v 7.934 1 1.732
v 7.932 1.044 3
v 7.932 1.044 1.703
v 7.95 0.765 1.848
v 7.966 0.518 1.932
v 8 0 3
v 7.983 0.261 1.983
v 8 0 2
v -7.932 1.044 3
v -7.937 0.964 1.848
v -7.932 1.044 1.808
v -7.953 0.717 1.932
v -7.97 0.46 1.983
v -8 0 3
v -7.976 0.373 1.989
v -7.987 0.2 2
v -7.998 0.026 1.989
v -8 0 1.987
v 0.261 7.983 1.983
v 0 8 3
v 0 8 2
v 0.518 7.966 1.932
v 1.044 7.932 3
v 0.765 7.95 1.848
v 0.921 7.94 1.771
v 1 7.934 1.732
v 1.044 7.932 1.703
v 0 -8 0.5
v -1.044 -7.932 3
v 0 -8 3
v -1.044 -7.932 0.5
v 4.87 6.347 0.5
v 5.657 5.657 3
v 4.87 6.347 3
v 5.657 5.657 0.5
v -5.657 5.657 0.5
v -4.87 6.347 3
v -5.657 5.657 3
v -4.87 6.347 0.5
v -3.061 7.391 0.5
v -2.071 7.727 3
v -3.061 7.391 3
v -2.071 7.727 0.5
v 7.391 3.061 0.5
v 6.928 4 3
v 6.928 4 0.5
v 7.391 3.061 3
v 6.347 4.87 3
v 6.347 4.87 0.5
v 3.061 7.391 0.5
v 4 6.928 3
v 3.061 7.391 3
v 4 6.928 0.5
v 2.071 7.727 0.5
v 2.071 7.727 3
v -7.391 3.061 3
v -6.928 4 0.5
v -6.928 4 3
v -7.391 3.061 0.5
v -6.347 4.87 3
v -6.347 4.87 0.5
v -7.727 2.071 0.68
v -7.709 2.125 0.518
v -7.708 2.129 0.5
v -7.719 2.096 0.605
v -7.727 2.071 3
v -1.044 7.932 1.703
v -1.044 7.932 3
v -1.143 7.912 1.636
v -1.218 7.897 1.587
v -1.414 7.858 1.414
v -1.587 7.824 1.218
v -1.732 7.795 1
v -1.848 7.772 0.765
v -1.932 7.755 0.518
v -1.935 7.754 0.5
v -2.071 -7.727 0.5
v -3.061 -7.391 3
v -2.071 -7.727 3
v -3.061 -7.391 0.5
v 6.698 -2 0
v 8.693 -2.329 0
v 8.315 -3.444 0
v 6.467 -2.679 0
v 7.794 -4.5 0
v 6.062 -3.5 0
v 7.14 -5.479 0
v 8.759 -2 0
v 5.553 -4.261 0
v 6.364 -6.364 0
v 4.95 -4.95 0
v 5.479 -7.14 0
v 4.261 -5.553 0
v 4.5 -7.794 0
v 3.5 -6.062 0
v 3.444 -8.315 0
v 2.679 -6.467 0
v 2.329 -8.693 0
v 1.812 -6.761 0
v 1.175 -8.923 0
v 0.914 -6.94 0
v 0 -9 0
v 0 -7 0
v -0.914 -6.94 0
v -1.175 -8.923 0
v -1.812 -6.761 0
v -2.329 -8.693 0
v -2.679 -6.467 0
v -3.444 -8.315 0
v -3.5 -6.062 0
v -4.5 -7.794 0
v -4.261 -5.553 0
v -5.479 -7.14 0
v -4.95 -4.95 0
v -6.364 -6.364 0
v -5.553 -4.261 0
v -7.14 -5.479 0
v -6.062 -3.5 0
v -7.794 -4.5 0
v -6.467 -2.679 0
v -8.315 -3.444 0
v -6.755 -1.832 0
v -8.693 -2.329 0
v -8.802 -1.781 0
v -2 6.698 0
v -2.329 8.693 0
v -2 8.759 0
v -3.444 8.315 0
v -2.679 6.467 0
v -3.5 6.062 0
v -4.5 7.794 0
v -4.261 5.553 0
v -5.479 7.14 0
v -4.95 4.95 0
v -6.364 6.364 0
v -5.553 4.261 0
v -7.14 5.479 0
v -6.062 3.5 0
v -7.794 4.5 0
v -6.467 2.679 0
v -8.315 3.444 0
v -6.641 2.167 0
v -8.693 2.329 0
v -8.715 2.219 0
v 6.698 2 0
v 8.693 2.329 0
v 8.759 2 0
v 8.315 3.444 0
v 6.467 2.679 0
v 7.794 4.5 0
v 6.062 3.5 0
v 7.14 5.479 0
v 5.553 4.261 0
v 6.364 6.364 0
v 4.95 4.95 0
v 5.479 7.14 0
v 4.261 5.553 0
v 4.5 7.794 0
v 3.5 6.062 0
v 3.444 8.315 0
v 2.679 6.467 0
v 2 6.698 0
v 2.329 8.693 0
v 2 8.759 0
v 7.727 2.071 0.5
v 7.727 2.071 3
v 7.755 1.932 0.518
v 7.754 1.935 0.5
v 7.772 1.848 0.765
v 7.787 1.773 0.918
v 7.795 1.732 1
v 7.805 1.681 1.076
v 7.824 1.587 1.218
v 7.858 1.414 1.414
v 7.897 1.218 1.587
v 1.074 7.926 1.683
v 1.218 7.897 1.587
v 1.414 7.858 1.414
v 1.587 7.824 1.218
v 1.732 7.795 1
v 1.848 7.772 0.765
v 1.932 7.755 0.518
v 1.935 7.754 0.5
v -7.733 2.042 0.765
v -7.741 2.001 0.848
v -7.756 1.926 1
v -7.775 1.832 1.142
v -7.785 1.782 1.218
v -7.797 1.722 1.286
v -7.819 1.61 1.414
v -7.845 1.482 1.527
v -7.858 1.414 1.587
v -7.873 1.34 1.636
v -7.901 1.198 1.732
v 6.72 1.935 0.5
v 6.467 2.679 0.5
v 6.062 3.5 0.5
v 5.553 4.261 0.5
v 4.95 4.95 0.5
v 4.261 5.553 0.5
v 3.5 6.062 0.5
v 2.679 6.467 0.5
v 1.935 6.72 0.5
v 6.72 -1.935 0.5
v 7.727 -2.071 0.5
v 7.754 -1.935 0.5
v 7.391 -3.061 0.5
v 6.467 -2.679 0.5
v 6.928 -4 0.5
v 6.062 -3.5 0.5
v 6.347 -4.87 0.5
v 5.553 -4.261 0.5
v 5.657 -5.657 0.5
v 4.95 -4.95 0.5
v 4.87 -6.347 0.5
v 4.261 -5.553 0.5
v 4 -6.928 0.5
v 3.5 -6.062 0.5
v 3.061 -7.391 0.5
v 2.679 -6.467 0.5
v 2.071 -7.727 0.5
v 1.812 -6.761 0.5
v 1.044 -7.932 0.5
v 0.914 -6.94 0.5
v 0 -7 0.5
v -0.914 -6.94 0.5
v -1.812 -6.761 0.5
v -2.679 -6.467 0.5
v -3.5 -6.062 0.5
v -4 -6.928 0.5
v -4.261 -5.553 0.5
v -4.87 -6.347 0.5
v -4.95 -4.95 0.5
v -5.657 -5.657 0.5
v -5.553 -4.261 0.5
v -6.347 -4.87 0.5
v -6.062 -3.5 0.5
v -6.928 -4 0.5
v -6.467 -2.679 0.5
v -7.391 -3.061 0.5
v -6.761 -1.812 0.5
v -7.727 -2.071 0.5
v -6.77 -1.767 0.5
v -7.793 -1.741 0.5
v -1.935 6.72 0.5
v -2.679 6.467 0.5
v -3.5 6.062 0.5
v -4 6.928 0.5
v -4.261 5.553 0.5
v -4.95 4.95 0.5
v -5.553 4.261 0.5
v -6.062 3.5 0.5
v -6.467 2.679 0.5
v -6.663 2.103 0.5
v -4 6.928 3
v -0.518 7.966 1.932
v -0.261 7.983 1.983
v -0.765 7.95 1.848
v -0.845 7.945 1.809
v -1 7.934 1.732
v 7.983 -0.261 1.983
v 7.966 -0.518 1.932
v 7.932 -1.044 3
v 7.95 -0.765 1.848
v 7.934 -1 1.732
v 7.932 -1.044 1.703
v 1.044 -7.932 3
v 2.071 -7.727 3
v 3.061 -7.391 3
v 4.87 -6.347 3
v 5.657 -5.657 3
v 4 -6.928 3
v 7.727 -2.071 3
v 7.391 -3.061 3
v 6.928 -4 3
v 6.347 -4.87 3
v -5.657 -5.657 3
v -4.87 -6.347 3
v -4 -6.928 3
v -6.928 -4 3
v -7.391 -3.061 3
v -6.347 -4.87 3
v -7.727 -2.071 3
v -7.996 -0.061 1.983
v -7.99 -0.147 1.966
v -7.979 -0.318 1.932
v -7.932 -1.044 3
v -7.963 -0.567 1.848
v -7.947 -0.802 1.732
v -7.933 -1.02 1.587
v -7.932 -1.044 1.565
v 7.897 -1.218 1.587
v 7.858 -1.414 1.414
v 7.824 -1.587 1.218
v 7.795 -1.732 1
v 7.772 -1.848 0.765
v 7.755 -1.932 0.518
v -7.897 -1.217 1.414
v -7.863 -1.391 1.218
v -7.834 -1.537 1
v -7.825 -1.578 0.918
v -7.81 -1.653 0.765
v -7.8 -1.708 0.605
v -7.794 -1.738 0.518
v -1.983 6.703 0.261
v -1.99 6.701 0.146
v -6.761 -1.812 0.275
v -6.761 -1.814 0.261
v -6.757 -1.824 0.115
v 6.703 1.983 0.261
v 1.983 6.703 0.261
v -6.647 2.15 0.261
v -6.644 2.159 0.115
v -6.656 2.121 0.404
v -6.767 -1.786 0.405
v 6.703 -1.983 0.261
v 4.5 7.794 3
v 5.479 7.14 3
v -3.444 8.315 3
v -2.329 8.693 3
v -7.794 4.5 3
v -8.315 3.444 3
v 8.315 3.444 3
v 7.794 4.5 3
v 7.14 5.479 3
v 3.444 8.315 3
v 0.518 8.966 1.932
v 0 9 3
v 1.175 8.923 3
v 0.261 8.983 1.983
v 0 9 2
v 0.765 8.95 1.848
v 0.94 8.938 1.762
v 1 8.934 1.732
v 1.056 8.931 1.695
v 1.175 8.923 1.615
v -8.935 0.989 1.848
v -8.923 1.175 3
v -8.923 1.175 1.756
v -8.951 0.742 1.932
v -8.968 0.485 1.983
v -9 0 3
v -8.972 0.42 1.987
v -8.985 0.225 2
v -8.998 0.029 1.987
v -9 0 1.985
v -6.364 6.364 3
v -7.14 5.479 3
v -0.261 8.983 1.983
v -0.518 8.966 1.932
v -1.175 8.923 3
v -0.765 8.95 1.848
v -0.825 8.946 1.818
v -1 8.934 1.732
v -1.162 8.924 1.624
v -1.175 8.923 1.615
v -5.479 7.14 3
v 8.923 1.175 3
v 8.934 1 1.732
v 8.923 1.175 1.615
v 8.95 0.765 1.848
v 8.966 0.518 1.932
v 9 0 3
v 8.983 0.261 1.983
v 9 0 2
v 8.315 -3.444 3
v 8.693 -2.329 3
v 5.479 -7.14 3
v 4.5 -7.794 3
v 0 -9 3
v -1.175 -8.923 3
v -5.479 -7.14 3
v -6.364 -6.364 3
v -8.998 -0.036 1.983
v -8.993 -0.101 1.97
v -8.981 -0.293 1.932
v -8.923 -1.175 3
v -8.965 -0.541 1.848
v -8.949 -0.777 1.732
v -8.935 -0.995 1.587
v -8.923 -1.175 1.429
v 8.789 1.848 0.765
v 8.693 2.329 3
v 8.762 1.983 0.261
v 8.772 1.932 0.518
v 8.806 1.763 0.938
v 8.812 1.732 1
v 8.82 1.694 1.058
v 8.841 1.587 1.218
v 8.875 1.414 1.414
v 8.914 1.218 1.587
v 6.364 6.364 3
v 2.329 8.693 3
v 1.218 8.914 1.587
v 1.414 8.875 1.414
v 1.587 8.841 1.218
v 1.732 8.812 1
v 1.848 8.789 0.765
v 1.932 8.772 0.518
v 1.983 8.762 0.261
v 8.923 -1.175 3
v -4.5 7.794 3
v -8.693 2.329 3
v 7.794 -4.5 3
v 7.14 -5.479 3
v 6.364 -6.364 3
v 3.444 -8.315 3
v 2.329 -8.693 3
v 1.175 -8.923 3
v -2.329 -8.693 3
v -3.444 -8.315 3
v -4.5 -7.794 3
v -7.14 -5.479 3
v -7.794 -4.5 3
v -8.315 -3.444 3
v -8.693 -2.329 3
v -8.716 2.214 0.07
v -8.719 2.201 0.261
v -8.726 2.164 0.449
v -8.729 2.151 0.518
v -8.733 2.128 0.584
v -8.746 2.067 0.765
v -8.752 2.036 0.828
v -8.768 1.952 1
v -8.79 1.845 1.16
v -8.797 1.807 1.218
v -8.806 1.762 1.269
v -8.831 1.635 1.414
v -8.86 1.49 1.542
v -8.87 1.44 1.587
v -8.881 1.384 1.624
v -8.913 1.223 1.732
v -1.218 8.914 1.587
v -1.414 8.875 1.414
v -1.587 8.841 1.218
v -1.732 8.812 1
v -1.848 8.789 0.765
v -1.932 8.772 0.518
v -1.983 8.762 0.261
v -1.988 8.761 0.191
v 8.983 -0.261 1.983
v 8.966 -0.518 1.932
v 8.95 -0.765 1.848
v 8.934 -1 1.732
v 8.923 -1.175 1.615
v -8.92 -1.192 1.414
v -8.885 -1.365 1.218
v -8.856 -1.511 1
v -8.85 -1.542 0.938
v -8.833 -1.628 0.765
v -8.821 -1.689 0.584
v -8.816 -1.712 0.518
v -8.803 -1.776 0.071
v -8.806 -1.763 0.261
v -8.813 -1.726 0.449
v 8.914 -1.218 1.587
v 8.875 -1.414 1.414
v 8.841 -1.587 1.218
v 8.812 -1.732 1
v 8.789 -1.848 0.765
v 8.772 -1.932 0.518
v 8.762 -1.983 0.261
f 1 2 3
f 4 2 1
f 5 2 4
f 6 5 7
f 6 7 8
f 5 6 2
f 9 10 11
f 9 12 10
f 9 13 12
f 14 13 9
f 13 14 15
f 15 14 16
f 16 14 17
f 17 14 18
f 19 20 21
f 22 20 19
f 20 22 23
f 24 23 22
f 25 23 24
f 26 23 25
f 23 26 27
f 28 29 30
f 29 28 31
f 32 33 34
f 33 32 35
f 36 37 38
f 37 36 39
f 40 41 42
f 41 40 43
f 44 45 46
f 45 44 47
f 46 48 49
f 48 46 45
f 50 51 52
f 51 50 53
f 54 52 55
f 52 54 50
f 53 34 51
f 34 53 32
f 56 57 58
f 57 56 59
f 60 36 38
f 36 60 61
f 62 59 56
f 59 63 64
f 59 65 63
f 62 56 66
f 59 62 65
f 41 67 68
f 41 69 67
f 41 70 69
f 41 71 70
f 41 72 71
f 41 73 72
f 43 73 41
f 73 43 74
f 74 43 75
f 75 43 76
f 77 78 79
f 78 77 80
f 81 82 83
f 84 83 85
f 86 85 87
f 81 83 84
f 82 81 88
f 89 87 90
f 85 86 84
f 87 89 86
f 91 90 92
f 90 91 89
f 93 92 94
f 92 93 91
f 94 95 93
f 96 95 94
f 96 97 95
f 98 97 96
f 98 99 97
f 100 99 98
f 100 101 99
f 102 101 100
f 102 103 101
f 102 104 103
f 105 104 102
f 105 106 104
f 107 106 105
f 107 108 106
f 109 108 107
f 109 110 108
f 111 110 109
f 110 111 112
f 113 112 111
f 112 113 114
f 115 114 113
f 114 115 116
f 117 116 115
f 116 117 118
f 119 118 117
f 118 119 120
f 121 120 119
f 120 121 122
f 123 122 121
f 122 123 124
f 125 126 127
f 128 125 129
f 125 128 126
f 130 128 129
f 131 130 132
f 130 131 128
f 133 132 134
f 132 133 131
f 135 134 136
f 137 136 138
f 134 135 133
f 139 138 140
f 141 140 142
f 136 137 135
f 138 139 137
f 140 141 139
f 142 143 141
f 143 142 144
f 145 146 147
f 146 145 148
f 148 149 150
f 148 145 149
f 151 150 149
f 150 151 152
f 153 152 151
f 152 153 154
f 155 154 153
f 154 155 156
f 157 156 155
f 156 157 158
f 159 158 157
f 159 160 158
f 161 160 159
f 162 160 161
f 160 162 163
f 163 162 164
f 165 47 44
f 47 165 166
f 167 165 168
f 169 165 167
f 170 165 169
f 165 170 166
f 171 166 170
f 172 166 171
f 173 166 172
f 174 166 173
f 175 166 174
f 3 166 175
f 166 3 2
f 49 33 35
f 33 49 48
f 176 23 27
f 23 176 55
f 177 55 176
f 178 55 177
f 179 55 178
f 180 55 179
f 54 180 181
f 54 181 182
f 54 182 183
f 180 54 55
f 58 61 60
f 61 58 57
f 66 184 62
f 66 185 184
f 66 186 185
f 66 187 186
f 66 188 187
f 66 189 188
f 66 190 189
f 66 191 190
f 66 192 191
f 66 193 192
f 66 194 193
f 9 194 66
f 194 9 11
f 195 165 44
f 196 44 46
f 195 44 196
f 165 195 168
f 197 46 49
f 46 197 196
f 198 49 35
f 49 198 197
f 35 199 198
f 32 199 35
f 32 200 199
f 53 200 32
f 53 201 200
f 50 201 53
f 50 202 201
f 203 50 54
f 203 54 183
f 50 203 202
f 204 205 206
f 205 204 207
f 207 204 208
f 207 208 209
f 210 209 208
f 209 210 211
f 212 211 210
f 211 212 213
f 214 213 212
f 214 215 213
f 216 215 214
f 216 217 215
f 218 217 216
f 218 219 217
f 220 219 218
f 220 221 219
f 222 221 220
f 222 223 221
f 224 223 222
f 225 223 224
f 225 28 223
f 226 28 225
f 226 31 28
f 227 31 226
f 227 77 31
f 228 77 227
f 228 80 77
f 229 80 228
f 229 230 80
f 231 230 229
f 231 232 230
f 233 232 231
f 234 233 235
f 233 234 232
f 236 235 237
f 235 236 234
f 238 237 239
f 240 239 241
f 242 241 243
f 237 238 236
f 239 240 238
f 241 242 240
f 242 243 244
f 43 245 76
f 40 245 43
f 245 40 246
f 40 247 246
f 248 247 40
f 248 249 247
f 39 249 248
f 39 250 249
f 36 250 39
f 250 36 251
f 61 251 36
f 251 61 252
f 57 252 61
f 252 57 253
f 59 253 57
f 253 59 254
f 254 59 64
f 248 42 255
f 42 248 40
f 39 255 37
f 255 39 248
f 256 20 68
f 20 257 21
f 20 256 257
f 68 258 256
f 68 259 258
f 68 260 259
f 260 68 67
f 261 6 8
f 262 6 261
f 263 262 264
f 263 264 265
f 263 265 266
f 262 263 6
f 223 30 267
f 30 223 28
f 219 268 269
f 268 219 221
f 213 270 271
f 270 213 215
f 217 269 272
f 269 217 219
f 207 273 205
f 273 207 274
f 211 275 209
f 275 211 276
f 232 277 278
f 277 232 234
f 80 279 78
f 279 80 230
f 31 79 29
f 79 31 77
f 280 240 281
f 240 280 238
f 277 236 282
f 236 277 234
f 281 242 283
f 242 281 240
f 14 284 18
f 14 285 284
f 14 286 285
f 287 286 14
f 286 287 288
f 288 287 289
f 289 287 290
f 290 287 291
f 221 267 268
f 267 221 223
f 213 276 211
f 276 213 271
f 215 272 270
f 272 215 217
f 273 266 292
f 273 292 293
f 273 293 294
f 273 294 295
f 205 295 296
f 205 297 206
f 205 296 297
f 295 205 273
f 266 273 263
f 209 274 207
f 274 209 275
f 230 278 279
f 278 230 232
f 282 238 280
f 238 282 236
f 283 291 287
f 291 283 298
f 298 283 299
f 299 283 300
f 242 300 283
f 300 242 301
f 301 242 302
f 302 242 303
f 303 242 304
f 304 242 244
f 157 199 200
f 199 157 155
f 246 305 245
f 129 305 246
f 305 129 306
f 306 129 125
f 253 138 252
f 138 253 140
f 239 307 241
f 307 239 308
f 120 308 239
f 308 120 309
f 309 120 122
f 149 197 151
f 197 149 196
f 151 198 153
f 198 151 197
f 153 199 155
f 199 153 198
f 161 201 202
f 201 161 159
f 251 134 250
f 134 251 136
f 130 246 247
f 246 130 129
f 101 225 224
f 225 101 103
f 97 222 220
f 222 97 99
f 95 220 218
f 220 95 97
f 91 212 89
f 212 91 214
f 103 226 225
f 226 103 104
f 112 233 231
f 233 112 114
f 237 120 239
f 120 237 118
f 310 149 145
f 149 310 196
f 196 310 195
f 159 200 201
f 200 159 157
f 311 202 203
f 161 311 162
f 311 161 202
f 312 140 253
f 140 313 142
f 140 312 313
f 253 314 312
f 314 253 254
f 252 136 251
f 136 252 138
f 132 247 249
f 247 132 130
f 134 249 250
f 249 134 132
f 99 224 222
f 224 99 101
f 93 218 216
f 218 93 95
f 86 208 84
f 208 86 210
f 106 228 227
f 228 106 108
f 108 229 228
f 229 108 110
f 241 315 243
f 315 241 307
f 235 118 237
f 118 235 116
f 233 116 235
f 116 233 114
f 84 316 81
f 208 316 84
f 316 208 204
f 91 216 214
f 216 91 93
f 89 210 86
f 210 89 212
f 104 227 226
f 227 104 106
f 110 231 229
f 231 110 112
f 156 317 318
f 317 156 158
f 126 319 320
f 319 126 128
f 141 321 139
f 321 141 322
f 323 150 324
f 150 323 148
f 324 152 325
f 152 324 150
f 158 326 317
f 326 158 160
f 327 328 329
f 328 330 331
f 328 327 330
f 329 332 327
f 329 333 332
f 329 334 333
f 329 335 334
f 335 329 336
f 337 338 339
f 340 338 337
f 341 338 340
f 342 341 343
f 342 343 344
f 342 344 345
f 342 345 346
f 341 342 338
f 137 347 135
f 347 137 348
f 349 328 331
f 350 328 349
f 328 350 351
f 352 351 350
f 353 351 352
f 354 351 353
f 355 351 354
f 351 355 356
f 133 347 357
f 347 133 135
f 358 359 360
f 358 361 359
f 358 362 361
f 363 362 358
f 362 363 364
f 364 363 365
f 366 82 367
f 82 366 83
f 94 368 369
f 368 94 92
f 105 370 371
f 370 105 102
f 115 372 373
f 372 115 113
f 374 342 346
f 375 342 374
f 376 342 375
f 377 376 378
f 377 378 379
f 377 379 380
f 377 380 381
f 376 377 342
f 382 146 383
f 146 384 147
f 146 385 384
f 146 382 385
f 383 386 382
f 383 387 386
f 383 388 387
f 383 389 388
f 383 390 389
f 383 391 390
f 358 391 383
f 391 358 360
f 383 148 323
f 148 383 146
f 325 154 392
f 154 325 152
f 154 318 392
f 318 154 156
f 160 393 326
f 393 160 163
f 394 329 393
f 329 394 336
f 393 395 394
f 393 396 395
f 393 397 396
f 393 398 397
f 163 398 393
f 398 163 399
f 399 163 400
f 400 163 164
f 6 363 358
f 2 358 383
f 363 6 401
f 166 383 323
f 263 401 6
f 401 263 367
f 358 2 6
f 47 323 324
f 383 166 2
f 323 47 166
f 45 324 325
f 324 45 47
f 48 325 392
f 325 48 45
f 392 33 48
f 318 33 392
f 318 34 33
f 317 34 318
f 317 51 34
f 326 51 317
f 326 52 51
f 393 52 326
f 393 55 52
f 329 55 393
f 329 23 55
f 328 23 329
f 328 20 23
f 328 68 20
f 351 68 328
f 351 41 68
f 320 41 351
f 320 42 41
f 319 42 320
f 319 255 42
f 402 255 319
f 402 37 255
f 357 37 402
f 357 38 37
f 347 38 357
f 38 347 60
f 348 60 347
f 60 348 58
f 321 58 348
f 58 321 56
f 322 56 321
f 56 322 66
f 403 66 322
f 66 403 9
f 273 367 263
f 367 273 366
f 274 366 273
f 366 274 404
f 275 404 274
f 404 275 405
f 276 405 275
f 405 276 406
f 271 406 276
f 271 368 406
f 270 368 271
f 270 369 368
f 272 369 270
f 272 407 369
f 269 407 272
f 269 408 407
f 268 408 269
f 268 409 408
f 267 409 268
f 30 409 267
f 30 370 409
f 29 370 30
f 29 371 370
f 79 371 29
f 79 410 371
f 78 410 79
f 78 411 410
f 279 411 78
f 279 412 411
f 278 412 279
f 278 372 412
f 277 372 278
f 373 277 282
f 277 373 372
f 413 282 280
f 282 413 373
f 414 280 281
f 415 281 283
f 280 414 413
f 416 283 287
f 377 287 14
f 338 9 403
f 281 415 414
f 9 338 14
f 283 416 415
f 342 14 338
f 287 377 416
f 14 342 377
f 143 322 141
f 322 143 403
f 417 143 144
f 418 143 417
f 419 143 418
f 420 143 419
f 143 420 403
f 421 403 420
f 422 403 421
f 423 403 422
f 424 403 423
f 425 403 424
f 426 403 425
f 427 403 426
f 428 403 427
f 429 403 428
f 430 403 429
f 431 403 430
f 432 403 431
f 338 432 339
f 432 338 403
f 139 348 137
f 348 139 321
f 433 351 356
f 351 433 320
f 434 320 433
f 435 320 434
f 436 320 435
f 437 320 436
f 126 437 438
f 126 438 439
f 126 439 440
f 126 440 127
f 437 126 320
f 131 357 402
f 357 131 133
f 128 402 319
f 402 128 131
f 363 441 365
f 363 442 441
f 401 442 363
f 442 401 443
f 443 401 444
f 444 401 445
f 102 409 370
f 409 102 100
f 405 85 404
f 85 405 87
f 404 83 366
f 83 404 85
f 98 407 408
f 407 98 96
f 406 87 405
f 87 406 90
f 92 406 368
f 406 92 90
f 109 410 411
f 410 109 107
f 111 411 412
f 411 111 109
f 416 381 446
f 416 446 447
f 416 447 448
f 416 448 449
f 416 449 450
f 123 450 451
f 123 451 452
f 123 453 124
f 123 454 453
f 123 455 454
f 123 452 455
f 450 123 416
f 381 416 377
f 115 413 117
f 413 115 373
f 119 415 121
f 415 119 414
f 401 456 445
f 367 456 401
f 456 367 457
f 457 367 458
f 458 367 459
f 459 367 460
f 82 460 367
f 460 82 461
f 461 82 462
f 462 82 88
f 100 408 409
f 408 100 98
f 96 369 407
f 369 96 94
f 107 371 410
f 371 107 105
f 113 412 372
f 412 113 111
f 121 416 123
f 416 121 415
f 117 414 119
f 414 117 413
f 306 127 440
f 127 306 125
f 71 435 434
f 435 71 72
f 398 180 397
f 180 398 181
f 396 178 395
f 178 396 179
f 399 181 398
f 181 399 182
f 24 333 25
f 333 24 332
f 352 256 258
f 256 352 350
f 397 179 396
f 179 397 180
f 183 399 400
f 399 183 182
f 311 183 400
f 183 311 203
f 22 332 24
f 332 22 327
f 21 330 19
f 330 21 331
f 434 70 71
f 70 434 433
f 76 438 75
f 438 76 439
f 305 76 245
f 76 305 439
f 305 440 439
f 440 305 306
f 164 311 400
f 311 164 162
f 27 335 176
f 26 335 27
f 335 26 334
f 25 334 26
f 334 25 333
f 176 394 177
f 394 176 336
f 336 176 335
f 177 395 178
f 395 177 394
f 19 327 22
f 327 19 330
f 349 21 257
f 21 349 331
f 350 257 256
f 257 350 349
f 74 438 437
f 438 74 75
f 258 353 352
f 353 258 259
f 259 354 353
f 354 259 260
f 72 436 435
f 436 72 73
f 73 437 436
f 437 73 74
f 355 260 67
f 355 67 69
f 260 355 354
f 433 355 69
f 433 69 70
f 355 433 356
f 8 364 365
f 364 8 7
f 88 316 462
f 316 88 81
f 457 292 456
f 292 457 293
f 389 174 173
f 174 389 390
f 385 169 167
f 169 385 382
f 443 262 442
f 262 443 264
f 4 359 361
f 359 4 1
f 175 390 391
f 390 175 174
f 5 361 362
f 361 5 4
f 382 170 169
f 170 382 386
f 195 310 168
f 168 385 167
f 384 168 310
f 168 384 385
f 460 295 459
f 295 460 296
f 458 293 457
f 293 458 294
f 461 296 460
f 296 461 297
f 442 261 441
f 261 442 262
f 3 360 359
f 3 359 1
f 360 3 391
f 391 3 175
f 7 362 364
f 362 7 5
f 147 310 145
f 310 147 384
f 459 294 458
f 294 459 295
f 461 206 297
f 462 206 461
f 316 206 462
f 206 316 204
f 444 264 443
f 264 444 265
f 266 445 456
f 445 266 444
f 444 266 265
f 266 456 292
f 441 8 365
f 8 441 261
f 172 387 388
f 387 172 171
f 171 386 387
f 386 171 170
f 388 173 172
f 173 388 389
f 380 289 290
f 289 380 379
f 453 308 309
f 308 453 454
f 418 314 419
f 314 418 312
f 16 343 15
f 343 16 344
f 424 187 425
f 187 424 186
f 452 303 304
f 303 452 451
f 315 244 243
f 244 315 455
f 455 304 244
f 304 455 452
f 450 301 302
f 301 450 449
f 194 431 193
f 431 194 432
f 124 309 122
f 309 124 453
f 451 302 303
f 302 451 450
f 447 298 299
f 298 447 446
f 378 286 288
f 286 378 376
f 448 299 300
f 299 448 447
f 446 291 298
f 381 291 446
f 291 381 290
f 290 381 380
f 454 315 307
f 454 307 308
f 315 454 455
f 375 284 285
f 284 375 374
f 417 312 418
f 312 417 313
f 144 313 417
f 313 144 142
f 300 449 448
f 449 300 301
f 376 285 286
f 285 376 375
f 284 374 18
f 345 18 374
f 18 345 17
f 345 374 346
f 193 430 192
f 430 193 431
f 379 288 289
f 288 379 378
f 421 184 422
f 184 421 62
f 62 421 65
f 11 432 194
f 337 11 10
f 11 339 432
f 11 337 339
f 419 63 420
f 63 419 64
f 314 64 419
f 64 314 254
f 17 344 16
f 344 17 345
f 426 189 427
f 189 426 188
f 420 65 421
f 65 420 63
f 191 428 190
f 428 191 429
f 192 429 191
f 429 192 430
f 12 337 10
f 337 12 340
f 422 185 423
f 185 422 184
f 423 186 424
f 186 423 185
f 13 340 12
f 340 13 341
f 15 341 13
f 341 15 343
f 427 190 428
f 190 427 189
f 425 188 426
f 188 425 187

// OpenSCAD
// file: ../build_environments.scad
// build_environments.scad: modules to build level sections
//

module pool(diameter=10.0, wall_height=2.0, step_width=3.0, connections=[])
{
    difference() {
        union() {
        difference() {
            cylinder(h=0.5,r1=diameter+step_width,r2=diameter+step_width,$fn=48);
            translate([0,0,-0.1])
                cylinder(h=0.7,r1=diameter,r2=diameter,$fn=48);
        }
        difference() {
            cylinder(h=wall_height,r1=diameter+step_width+1.0,r2=diameter+step_width+1.0,$fn=48);
            translate([0,0,-0.1])
                cylinder(h=wall_height+0.2,r1=diameter+step_width,r2=diameter+step_width,$fn=48);
        }
        }
    
        for (c = connections)
        {
            rotate([0,90,0]) {
                angle = atan2(c[1],c[0]);
                rotate([-angle,0,0]) {
                    cylinder(h=diameter+5.0,r1=c[2],r2=c[2],$fn=48);
                }
            }
        }
    }
}

module straight(length=10.0, width=2.0, dy1=0.0, dy2=0.0, dz=0.0)
{
    dims = [0, 0, 0, 0, 0, (dz/length)];
    matrix = [
        [ 1, dims[0], dims[1], 0 ],
        [ dims[2], 1, dims[4], 0 ],
        [ dims[5], dims[3], 1, 0 ],
        [ 0, 0, 0, 1 ]
    ];
    multmatrix(matrix)
    difference() {
        translate([dy1,0,0])
        union() {
            rotate([0,90,0]) {
                difference() {
                    cylinder(h=(length-dy1-dy2),r1=width+1.0,r2=width+1.0,$fn=24);
                    translate([0,0,-0.1])
                        cylinder(h=(length-dy1-dy2+0.2),r1=width,r2=width,$fn=24);
                }
                difference() {
                    cylinder(h=1.0,r1=width+2.0,r2=width+2.0,$fn=24);
                    translate([0,0,-0.1])
                        cylinder(h=1.2,r1=width,r2=width,$fn=24);
                }
                translate([0,0,(length-dy1-dy2)-1.0]) {
                    difference() {
                        cylinder(h=1.0,r1=width+2.0,r2=width+2.0,$fn=24);
                        translate([0,0,-0.1])
                            cylinder(h=1.2,r1=width,r2=width,$fn=24);
                    }
                }
            }
        }
        translate([0,0,-(2*width+4.0)/2])
            cube([3*length,3*length,2*width+4.0],center=true);
    }
}

module curve(p0=[0,0], center=[0,0], dir=1, angle=0.0, width=2.0)
{
    radius = sqrt((p0[0]-center[0])*(p0[0]-center[0]) + (p0[1]-center[1])*(p0[1]-center[1]));
    if (dir == 0) {
        difference() {
            rotate([0,0,-90])
            difference() {
                rotate_extrude(angle = angle, convexity = 10, $fn=32)
                    translate([radius, 0, 0])
                        circle(r = width+1.0,$fn=24);
                rotate([0,0,-1.0])
                    rotate_extrude(angle = angle+2.0, convexity = 10, $fn=32)
                        translate([radius, 0, 0])
                            circle(r = width,$fn=24);
            }
            translate([0,0,-(2*width+4.0)/2])
                cube([5*radius,5*radius,2*width+4.0],center=true);
        }
    }
    else {
        difference() {
            rotate([0,0,90])
            difference() {
                rotate_extrude(angle = -angle, convexity = 10, $fn=32)
                    translate([radius, 0, 0])
                        circle(r = width+1.0,$fn=24);
                rotate([0,0,1.0])
                    rotate_extrude(angle = -angle-2.0, convexity = 10, $fn=32)
                        translate([radius, 0, 0])
                            circle(r = width,$fn=24);
            }
            translate([0,0,-(2*width+4.0)/2])
                cube([5*radius,5*radius,2*width+4.0],center=true);
        }
    }

}

// test pool
//pool(diameter=12.0000, wall_height=3.0000, step_width=3.0000, connections=[[0.0000,-26.0000,2.0000], [23.6074,0.0000,2.0000]]);

// test straight, slope
//straight(length=26.0000, width=2.0000, dy1=11.8322, dy2=6.7082, dz=0.0000);
//straight(length=29.1549, width=12.0000, dy1=0.0000, dy2=0.0000, dz=-15.0000);

// test curve
//curve(p0=[23.6074, 0.0000], center=[23.6074, 5.0000], dir=0, angle=60.1011, width=2.0000);
//curve(p0=[33.6426, 12.4219], center=[37.9771, 9.9295], dir=1, angle=120.4627, width=2.0000);
// main file
use <../build_environments.scad>;
pool(diameter=7.0000, wall_height=3.0000, step_width=1.0000, connections=[[0.0000,17.0000,2.0000], [16.0000,0.0000,2.0000], [-12.1999,0.3050,2.0000]]);
